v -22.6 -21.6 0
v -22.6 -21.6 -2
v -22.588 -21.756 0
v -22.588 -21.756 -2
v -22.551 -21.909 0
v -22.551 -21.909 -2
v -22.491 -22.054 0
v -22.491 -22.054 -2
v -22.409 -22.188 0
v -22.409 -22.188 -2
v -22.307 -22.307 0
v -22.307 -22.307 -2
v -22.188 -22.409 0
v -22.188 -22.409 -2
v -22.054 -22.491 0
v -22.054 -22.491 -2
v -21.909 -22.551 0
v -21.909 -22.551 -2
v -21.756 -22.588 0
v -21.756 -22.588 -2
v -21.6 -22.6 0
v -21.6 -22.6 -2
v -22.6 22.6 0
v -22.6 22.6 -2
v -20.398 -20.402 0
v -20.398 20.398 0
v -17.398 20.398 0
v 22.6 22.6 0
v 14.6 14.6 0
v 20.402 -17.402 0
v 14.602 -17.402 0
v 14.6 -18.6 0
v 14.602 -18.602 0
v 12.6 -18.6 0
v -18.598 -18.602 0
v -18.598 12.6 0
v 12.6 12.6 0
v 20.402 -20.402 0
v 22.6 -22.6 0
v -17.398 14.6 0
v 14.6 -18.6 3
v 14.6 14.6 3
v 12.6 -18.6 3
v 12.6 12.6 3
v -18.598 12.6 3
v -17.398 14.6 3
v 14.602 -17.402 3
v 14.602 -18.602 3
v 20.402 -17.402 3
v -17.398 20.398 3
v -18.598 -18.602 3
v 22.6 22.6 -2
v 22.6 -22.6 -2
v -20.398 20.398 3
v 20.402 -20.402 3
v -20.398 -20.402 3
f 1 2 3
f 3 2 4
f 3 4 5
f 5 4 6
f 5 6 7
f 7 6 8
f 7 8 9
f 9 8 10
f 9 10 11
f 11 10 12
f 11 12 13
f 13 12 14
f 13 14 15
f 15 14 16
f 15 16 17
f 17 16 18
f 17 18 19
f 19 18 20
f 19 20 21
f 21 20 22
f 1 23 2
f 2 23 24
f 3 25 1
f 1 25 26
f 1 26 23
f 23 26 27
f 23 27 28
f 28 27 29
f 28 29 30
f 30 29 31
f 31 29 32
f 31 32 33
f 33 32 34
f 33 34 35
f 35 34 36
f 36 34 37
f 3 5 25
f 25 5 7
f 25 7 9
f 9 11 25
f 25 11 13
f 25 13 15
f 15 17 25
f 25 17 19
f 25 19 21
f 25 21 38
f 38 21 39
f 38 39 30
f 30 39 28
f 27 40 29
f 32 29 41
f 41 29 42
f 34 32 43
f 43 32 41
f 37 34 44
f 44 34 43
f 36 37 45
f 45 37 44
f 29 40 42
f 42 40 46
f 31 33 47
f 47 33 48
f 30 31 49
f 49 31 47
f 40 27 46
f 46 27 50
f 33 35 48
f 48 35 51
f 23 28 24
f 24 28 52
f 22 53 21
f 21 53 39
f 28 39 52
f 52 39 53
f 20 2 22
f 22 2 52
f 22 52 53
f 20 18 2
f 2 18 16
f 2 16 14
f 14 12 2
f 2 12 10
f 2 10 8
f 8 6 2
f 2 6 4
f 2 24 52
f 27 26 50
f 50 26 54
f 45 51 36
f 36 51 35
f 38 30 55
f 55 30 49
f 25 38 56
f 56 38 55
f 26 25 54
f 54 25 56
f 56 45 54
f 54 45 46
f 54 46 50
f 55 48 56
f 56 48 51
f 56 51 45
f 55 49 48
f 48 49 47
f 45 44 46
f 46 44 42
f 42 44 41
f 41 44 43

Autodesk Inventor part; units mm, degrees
ref_plane "YZ Plane" through (0, 0, 0) normal (1, 0, 0) x (0, 1, 0)
ref_plane "XZ Plane" through (0, 0, 0) normal (0, 1, 0) x (-1, 0, 0)
ref_plane "XY Plane" through (0, 0, 0) normal (0, 0, 1) x (1, 0, 0)
sketch "Sketch1" plane through (0, 0, 0) normal (0, 0, 1) x (1, 0, 0)
  line L0 (-22.6, -22.6) -> (22.6, -22.6)
  line L1 (22.6, -22.6) -> (22.6, 22.6)
  line L2 (22.6, 22.6) -> (-22.6, 22.6)
  line L3 (-22.6, 22.6) -> (-22.6, -22.6)
  line L4 (-22.6, -22.6) -> (22.6, 22.6) construction
  line L5 (22.6, -22.6) -> (20.5, -22.6) construction
  line L6 (20.5, -22.6) -> (20.4022, -20.4022) construction
  line L7 (20.4022, -20.4022) -> (-20.3978, -20.4022)
  line L8 (-20.3978, -20.4022) -> (-20.3978, -18.6022)
  line L9 (-20.3978, -18.6022) -> (20.4022, -18.6022)
  line L10 (20.4022, -18.6022) -> (20.4022, -20.4022)
  line L11 (-20.3978, -18.6022) -> (-18.5978, -18.6022)
  line L12 (-18.5978, -18.6022) -> (-18.5978, 20.3978)
  line L13 (-18.5978, 20.3978) -> (-20.3978, 20.3978)
  line L14 (-20.3978, 20.3978) -> (-20.3978, -18.6022)
  line L15 (-18.5978, 20.3978) -> (-17.3978, 20.3978)
  line L16 (-17.3978, 20.3978) -> (-17.3978, 14.5978)
  line L17 (-17.3978, 14.5978) -> (-18.5978, 14.5978)
  line L18 (-18.5978, 14.5978) -> (-18.5978, 20.3978)
  line L19 (20.4022, -18.6022) -> (14.6022, -18.6022)
  line L20 (14.6022, -18.6022) -> (14.6022, -17.4022)
  line L21 (14.6022, -17.4022) -> (20.4022, -17.4022)
  line L22 (20.4022, -17.4022) -> (20.4022, -18.6022)
  line L23 (22.6, 22.6) -> (-17.4, 22.6) construction
  line L24 (-17.4, 22.6) -> (-17.4, 14.6) construction
  line L25 (-17.4, 14.6) -> (22.6, 14.6) construction
  line L26 (22.6, 14.6) -> (22.6, 22.6) construction
  line L27 (22.6, 22.6) -> (14.6, 22.6) construction
  line L28 (14.6, 22.6) -> (14.6, -17.4) construction
  line L29 (14.6, -17.4) -> (22.6, -17.4) construction
  line L30 (22.6, -17.4) -> (22.6, 22.6) construction
  line L31 (14.6, 14.6) -> (-18.6, 14.6)
  line L32 (-18.6, 14.6) -> (-18.6, 12.6)
  line L33 (-18.6, 12.6) -> (14.6, 12.6)
  line L34 (14.6, 12.6) -> (14.6, 14.6)
  line L35 (14.6, 12.6) -> (12.6, 12.6)
  line L36 (12.6, 12.6) -> (12.6, -18.6)
  line L37 (12.6, -18.6) -> (14.6, -18.6)
  line L38 (14.6, -18.6) -> (14.6, 12.6)
  point P0 (0, 0)
  point P1 (-19.4978, 20.3978)
  point P2 (-17.3978, 14.6)
  point P3 (-18.5978, 12.6)
  dimension "d0" = 45.2
  dimension "d1" = 45.2
  dimension "d2" = 2.1
  dimension "d3" = 2.2
  dimension "d5" = 1.8
  dimension "d6" = 1.8
  dimension "d7" = 39
  dimension "d10" = 2.2022
  dimension "d11" = 4.0022
  dimension "d12" = 2.2022
  dimension "d15" = 1.2
  dimension "d16" = 5.8
  dimension "d21" = 5.8
  dimension "d22" = 1.2
  dimension "d25" = 40
  dimension "d26" = 8
  dimension "d27" = 8
  dimension "d28" = 40
  dimension "d29" = 33.2
  dimension "d30" = 2
  dimension "d31" = 2
  dimension "d32" = 31.2
extrude "Extrusion1" add sketch "Sketch1" along normal blind 3 contours L7 L8 L9 L10 | L14 L13 L12 L31 L32 L33 L9 | L33 L32 L31 L12
extrude "Extrusion2" add sketch "Sketch1" against normal blind 2 contours L3 L2 L1 L0 | L7 L8 L9 L10 | L9 L20 L21 L22 | L14 L13 L12 L31 L32 L33 L9 | L33 L32 L31 L12 | L12 L17 L16 L31 L34 L33 | L15 L16 L31 L12 | L12 L31 L16 L17 | L33 L38 L37 L36
extrude "Extrusion4" add sketch "Sketch1" along normal blind 3 contours L9 L20 L21 L22 | L15 L16 L31 L12 | L12 L31 L16 L17
extrude "Extrusion5" add sketch "Sketch1" along normal blind 3 contours L12 L17 L16 L31 L34 L33 | L33 L38 L37 L36
fillet "Fillet1" radius 1 1 edges at (-22.6, -22.6, -1)
properties part number "DownCover" material "ABS Plastic"
